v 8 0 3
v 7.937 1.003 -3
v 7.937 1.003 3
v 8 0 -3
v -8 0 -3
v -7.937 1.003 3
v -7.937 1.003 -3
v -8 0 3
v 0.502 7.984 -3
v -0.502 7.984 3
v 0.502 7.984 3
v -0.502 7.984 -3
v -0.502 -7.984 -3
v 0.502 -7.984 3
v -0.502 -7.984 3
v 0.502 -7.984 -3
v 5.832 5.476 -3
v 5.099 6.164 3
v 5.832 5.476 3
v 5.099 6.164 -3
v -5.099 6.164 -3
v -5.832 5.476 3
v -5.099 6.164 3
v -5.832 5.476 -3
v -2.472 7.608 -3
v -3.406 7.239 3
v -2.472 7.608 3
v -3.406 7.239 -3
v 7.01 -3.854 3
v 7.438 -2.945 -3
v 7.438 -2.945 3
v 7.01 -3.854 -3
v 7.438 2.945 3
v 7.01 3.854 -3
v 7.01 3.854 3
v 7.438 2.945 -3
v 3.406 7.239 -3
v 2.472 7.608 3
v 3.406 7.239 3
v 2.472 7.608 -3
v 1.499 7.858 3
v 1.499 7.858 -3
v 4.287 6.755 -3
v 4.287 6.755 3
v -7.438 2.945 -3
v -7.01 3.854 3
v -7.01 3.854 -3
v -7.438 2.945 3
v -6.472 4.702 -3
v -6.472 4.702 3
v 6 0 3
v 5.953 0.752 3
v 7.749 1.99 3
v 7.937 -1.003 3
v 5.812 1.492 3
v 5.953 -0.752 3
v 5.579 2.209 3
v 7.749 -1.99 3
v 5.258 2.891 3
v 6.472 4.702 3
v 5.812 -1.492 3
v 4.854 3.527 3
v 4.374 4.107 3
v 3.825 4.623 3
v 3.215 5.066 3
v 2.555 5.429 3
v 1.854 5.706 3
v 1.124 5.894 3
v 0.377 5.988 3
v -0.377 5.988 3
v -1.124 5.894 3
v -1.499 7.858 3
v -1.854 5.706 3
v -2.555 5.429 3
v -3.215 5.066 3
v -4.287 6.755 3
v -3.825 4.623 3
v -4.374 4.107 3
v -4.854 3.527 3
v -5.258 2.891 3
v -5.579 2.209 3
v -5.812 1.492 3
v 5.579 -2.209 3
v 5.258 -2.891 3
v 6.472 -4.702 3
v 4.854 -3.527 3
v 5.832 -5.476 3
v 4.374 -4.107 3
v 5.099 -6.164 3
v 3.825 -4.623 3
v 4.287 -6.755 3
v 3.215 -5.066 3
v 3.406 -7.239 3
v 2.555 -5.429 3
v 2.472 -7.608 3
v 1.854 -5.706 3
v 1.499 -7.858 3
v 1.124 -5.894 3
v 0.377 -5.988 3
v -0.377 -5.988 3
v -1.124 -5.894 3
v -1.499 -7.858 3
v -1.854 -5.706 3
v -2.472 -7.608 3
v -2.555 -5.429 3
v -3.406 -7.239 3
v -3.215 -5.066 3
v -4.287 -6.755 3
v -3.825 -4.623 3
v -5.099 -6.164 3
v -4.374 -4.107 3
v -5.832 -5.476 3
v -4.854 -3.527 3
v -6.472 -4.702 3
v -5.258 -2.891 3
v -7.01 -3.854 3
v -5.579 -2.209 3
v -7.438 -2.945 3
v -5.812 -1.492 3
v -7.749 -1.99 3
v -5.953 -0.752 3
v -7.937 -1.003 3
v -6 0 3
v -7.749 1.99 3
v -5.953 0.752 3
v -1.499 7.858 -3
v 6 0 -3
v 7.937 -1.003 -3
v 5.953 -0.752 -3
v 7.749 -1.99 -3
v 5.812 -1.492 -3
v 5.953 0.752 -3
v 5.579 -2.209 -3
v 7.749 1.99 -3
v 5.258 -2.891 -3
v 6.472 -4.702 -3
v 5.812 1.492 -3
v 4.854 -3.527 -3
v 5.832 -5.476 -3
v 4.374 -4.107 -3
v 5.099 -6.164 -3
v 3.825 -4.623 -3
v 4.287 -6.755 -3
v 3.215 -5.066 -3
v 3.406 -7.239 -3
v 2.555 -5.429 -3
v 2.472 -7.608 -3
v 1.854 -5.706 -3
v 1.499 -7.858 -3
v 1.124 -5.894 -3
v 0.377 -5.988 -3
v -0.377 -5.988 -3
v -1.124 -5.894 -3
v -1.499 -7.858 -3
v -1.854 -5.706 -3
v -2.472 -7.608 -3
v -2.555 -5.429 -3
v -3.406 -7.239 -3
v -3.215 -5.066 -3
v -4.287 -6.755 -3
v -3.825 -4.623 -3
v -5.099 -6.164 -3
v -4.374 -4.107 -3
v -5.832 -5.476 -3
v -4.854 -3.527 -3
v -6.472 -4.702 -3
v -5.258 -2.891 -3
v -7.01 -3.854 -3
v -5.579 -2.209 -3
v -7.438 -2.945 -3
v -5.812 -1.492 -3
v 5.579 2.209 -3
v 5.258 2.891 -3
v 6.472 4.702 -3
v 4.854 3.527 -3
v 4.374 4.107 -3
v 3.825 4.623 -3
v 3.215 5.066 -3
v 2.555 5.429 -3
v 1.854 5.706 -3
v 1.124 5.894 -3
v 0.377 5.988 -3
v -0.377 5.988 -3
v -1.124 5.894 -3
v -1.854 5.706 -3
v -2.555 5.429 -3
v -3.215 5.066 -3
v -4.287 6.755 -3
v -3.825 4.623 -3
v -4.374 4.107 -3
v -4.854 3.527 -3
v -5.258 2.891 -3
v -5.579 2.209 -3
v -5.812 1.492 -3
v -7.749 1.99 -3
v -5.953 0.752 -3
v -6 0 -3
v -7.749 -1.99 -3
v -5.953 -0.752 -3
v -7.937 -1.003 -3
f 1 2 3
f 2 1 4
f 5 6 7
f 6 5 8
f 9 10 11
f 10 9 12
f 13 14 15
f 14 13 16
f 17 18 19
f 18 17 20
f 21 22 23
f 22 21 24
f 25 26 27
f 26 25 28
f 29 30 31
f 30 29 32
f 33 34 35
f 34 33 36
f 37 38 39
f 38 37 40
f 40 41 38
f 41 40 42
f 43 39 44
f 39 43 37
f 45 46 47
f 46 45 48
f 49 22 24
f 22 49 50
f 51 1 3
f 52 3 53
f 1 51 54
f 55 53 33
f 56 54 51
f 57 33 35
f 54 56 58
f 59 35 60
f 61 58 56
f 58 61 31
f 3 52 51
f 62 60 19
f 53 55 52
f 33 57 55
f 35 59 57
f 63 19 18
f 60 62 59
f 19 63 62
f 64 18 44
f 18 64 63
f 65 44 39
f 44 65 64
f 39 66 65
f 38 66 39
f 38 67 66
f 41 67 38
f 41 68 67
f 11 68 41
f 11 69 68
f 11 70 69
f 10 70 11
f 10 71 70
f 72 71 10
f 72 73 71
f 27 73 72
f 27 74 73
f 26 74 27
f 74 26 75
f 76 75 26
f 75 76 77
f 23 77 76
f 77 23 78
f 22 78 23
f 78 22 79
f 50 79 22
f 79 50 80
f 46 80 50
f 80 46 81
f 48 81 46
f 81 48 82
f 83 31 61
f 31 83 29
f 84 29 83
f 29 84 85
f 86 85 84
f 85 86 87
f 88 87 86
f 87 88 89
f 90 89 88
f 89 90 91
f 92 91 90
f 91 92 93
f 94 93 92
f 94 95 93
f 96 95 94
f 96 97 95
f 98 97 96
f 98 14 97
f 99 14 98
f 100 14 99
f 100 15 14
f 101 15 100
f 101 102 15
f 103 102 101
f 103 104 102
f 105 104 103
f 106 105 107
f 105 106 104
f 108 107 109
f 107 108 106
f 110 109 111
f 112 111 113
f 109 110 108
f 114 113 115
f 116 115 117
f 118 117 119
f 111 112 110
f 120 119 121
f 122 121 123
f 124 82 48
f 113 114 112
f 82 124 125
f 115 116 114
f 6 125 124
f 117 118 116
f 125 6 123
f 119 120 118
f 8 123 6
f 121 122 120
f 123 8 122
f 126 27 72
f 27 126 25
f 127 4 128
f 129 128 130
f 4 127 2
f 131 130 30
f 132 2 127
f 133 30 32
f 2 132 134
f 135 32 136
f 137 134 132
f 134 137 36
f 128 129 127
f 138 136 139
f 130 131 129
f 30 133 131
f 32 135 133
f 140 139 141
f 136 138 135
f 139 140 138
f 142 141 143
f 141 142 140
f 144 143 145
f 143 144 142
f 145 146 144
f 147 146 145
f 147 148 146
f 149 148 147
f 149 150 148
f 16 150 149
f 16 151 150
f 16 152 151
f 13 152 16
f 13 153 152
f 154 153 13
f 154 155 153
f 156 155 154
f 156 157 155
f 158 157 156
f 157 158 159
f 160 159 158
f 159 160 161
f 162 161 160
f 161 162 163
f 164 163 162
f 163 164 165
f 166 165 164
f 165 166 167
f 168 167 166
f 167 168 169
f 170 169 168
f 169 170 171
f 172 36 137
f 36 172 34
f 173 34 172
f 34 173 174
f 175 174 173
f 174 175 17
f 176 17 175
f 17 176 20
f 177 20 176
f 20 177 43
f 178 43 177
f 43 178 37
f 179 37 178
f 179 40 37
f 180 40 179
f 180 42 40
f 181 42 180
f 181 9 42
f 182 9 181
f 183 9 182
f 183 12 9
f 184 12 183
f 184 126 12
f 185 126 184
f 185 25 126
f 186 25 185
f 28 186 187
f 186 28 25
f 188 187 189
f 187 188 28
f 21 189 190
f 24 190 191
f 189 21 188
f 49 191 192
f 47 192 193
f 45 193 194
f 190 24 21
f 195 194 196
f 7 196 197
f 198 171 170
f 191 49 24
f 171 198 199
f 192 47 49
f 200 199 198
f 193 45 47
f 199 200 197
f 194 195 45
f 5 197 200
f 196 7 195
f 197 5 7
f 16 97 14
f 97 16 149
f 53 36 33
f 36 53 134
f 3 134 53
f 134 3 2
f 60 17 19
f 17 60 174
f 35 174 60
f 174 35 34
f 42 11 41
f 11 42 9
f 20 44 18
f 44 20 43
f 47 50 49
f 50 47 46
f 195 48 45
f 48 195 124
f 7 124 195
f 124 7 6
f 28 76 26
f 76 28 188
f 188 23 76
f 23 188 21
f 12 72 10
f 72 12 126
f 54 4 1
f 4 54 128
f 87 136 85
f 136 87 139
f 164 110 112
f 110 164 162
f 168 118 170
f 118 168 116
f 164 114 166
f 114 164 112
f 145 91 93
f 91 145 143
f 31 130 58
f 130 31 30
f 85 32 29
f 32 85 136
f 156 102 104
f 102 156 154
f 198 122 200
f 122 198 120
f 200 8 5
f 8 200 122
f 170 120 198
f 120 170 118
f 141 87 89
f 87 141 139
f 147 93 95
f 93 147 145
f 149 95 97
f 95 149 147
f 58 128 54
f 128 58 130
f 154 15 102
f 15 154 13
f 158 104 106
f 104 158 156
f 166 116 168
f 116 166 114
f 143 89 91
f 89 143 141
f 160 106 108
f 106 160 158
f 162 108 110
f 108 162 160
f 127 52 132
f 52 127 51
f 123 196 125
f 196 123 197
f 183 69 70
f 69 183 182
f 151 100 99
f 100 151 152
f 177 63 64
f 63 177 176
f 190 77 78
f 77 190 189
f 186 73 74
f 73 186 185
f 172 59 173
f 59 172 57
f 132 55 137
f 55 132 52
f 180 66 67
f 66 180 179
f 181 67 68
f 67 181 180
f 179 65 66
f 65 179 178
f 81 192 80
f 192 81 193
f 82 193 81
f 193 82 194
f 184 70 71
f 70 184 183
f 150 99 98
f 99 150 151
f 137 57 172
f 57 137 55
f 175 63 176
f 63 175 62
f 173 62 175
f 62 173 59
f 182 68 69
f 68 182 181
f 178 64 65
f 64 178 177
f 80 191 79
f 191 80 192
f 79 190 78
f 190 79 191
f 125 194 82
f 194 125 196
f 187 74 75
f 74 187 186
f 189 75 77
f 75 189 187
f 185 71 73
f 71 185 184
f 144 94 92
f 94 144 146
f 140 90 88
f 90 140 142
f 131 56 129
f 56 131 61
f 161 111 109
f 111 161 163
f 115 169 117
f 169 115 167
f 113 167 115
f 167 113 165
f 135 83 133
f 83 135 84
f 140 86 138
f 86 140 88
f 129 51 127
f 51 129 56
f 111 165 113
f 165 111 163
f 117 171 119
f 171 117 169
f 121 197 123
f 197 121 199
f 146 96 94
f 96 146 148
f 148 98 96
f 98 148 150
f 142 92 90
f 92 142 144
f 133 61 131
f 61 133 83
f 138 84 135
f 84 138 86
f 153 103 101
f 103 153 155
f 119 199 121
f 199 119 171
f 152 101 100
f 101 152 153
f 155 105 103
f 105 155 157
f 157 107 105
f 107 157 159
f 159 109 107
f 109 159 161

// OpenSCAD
$fn = 50;


difference() {
	union() {
		translate(v = [0, 0, -3.0000000000]) {
			cylinder(h = 6, r = 8.0000000000);
		}
	}
	union() {
		translate(v = [0, 0, -100.0000000000]) {
			cylinder(h = 200, r = 6);
		}
	}
}
